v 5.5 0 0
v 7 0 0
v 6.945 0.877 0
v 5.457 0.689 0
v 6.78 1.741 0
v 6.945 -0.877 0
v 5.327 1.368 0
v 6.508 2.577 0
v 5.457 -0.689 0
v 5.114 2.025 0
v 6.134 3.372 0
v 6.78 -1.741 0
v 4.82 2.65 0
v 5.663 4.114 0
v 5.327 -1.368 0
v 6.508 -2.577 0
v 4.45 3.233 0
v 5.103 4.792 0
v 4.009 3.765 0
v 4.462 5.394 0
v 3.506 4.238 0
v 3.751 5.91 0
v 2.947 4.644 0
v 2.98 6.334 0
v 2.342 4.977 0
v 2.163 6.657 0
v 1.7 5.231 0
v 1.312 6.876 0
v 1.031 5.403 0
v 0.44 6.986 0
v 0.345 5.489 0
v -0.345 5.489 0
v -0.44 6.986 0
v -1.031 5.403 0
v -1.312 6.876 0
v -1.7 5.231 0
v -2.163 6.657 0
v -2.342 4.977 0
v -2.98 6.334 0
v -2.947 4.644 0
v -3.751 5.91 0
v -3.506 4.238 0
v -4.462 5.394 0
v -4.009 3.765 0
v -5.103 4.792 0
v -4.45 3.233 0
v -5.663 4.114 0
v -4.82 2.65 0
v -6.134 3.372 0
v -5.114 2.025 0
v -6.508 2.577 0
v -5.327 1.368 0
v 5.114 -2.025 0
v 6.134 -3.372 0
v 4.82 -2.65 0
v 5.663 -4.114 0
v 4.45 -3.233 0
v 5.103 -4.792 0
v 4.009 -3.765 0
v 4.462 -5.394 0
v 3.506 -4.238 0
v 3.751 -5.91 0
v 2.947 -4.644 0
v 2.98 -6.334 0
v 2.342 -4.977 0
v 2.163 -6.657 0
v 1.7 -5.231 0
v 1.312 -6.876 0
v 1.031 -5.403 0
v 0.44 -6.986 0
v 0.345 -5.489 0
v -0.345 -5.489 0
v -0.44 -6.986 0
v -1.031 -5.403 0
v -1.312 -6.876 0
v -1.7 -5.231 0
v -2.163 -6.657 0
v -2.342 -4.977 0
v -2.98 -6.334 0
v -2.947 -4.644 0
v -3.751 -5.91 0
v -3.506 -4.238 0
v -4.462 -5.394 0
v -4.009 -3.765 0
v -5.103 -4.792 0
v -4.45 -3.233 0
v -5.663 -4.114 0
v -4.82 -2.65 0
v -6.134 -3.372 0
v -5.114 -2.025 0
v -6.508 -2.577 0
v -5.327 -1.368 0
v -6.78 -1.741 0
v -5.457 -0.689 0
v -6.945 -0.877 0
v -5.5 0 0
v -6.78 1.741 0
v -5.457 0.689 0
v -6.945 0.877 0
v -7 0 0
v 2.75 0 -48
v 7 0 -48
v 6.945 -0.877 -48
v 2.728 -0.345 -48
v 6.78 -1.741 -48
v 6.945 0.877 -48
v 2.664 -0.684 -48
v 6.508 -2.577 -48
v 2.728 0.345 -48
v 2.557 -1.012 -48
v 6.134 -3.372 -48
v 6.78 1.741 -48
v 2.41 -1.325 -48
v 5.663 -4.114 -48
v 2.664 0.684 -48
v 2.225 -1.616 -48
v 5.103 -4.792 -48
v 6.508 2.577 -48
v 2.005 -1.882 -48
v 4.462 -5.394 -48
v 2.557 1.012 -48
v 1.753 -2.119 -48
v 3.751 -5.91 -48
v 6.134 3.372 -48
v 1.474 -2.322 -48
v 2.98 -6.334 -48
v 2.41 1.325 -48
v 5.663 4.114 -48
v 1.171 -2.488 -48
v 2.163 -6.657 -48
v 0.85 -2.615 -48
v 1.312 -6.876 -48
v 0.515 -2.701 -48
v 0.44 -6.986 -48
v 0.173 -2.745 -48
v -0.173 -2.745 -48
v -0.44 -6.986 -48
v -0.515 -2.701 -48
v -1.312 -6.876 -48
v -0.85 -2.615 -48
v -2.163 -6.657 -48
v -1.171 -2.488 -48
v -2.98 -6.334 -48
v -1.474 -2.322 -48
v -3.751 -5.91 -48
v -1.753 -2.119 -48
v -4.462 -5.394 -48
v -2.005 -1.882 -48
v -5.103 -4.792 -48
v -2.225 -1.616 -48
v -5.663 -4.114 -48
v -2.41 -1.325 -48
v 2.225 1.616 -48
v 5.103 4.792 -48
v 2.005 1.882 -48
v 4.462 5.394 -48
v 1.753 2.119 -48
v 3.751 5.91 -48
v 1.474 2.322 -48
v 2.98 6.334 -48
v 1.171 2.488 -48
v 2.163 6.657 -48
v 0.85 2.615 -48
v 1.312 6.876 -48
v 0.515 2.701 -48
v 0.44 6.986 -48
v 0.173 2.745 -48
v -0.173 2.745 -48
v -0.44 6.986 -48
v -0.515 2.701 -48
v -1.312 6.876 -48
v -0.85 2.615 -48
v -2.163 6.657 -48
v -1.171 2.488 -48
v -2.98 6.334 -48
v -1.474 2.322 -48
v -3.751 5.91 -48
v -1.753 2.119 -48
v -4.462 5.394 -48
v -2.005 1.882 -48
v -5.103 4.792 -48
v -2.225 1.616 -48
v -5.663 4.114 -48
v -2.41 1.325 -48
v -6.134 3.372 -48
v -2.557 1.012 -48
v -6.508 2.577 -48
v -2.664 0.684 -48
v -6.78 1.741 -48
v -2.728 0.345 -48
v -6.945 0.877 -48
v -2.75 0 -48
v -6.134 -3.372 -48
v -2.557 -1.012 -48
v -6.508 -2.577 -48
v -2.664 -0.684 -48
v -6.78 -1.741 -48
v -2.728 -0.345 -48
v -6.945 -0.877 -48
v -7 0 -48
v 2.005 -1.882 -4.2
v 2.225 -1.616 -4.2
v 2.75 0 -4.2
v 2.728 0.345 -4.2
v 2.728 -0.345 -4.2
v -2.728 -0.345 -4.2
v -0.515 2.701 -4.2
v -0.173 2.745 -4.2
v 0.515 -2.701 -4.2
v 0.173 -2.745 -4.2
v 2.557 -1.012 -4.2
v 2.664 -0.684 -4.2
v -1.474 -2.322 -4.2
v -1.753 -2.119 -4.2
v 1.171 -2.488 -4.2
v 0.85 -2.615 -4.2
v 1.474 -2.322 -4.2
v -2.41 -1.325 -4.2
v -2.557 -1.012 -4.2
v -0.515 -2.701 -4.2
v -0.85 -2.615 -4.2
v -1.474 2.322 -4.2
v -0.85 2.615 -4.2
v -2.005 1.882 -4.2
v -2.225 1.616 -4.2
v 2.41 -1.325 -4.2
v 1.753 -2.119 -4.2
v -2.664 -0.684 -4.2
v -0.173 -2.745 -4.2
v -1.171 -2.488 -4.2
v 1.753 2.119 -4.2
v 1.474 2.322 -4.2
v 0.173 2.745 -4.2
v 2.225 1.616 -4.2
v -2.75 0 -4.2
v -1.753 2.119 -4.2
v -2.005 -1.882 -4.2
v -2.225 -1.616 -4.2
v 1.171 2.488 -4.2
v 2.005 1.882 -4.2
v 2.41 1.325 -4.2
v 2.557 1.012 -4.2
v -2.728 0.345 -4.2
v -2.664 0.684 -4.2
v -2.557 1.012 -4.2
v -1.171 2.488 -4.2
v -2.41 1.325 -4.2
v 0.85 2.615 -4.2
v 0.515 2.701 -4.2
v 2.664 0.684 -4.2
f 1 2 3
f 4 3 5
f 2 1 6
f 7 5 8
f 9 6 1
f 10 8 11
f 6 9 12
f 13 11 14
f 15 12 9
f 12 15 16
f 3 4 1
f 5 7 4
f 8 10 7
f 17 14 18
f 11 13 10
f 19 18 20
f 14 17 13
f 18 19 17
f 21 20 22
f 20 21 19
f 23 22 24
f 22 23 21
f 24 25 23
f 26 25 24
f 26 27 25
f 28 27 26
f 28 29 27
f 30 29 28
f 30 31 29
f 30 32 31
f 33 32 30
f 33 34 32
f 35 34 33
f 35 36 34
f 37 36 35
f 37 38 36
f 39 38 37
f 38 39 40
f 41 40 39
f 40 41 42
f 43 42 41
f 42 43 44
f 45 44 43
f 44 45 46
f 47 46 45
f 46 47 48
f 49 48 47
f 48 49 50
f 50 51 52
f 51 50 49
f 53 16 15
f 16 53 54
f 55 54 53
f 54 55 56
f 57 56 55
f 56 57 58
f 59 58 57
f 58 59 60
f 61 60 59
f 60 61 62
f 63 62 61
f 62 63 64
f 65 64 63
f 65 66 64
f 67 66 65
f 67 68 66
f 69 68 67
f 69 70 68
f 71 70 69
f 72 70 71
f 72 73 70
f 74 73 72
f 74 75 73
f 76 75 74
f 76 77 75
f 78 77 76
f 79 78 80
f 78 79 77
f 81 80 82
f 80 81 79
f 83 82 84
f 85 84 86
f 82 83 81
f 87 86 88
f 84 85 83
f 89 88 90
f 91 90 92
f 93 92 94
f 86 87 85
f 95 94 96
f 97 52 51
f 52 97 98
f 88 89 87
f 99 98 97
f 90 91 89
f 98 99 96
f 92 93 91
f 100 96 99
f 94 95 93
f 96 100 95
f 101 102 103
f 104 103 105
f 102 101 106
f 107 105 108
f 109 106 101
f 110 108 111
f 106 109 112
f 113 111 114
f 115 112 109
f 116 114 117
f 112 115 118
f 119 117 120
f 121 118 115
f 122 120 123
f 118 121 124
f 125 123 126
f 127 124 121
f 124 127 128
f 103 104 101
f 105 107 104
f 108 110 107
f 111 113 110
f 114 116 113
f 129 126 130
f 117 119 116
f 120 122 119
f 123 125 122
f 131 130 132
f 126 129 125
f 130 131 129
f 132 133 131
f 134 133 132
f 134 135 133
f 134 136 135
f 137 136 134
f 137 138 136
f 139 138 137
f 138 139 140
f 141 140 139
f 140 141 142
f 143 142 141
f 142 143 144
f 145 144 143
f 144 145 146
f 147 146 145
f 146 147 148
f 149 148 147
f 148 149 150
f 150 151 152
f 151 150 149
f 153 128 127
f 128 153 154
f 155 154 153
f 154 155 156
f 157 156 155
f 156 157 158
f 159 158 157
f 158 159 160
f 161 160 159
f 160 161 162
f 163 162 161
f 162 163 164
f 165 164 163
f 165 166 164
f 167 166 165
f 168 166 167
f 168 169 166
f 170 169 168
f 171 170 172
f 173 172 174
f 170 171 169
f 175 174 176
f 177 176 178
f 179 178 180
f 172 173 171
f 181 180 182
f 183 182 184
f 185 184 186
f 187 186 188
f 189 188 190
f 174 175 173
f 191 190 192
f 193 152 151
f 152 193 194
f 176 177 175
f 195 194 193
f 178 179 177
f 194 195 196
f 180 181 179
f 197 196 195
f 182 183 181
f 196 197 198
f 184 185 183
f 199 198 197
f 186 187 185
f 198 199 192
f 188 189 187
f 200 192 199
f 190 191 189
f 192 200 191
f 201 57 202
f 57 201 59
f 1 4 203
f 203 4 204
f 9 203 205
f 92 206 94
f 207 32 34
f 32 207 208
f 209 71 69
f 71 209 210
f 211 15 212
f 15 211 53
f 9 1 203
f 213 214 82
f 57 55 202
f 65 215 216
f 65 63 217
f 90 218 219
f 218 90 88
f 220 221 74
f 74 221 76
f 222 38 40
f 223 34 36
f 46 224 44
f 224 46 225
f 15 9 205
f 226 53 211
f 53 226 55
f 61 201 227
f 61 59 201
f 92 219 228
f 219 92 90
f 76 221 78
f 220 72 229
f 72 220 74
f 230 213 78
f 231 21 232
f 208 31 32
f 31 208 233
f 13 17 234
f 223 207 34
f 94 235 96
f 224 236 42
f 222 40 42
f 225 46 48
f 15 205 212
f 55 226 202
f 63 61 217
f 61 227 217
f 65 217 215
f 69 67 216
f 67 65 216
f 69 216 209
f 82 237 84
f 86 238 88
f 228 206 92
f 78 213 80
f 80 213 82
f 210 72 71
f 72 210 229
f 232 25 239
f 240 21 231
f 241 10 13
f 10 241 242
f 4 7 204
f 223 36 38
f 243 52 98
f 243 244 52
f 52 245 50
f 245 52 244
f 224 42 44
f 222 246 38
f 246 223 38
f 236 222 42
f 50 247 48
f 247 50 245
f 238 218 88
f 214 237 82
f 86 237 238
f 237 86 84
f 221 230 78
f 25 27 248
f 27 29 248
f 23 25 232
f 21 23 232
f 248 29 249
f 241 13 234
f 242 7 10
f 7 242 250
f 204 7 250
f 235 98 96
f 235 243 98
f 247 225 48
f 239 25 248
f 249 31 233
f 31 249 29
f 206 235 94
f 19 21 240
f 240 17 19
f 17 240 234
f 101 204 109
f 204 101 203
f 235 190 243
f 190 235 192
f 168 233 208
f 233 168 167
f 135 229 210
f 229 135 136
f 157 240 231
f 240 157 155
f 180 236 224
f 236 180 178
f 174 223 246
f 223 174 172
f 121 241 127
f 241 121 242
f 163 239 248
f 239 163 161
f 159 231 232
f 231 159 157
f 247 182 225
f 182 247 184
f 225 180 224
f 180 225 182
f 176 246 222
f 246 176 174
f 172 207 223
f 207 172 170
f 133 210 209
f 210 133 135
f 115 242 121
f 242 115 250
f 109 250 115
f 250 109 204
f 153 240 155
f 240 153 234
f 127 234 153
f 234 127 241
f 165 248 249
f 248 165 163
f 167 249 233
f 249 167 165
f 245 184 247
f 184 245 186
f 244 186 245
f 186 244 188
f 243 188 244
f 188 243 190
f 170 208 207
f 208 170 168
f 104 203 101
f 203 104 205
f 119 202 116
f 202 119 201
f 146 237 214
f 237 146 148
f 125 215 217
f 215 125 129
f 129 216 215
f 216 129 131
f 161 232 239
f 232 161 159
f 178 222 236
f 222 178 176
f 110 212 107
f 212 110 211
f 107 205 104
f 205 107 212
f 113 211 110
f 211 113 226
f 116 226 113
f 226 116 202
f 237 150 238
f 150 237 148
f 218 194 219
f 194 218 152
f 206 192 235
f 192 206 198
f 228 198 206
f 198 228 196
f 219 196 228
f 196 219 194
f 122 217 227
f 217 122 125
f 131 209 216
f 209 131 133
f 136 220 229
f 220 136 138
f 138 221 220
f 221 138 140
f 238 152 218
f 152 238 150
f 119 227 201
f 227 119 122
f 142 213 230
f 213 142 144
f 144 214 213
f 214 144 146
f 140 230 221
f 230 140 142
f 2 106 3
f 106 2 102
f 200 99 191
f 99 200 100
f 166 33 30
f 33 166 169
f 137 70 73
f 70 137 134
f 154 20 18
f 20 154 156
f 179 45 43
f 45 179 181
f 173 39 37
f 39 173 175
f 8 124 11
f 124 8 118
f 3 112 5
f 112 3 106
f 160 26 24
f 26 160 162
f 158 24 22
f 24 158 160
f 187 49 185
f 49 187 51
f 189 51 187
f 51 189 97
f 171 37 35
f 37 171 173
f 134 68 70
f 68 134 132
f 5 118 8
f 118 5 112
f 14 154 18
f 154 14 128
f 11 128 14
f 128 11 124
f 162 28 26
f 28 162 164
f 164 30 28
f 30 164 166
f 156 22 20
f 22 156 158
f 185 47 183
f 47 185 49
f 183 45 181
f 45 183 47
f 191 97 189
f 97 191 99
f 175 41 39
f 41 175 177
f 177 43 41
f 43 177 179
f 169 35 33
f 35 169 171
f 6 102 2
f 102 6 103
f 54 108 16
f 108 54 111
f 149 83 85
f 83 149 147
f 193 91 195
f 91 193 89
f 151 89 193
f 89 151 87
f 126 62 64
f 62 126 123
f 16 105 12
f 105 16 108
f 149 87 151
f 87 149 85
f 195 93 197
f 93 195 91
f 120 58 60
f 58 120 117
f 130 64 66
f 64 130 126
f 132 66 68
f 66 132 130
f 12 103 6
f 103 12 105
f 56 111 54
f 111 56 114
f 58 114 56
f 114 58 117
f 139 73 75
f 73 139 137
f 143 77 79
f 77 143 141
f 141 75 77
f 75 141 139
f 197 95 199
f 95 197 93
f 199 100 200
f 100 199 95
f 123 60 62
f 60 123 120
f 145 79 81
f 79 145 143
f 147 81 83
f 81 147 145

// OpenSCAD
$fn = 50;


difference() {
	union() {
		translate(v = [0, 0, -48.0000000000]) {
			cylinder(h = 48, r = 7.0000000000);
		}
		cylinder(h = 0, r = 13.0000000000);
	}
	union() {
		translate(v = [0, 0, 0]) {
			rotate(a = [0, 0, 0]) {
				difference() {
					union() {
						#translate(v = [0, 0, -48.0000000000]) {
							cylinder(h = 48, r = 2.2500000000);
						}
						#translate(v = [0, 0, -4.2000000000]) {
							cylinder(h = 4.2000000000, r1 = 2.7500000000, r2 = 5.5000000000);
						}
						#translate(v = [0, 0, -48.0000000000]) {
							cylinder(h = 48, r = 2.7500000000);
						}
						#translate(v = [0, 0, -48.0000000000]) {
							cylinder(h = 48, r = 2.2500000000);
						}
					}
					union();
				}
			}
		}
	}
}
